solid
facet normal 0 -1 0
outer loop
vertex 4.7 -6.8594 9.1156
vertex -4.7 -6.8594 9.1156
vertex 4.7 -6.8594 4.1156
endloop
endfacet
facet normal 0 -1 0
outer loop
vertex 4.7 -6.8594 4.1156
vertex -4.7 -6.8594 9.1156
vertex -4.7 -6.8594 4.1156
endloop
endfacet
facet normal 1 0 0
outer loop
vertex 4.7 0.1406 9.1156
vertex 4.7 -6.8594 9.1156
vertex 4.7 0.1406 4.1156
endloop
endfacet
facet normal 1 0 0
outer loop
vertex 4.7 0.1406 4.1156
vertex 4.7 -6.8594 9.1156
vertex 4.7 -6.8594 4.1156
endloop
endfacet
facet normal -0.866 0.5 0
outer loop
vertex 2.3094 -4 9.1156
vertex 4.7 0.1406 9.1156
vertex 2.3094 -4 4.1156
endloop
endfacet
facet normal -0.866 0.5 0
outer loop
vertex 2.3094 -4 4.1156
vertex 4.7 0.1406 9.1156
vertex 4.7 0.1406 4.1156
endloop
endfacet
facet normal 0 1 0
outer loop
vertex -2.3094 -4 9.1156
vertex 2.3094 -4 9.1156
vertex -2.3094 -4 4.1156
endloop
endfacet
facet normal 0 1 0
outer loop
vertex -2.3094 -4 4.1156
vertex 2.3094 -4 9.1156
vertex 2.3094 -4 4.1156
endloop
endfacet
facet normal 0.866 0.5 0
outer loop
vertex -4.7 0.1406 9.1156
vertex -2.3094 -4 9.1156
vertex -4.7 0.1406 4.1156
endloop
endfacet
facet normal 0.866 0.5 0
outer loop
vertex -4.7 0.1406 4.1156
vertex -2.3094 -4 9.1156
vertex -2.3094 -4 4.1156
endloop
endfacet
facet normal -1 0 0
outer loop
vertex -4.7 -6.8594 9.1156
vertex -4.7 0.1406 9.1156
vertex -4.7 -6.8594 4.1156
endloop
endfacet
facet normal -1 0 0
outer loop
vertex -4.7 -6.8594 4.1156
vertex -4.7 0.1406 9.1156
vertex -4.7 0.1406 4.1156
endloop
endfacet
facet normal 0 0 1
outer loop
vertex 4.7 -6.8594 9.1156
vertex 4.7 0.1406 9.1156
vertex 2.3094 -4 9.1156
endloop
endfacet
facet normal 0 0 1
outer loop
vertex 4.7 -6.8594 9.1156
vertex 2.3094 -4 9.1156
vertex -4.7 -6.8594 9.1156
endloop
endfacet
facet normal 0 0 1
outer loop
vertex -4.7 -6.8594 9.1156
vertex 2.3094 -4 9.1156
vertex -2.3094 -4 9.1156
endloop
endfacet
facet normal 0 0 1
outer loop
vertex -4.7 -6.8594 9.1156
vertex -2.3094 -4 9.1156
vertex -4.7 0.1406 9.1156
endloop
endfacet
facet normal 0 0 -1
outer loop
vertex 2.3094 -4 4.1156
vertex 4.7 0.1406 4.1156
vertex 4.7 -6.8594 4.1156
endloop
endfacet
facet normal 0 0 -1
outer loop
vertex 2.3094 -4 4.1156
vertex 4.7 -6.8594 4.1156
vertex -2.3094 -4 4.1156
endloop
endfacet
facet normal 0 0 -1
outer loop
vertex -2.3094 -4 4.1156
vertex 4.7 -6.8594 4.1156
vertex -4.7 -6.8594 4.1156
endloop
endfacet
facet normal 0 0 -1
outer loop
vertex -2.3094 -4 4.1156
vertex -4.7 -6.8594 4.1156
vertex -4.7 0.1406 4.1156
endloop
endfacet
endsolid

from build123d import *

# Parameters (mm, degrees)
Y_KSEKLIK_EKSTR_ZYON1_DEPTH = 5


with BuildPart() as part:
    # Çizim1 → Yükseklik-Ekstrüzyon1 (new body)
    with BuildSketch(Plane.XY.offset(4.115610561)):
        Polygon((-4.7, 0.140638796), (-4.7, -6.859361204), (4.7, -6.859361204), (4.7, 0.140638796), (2.309401077, -4), (-2.309401077, -4), align=None)
    extrude(amount=Y_KSEKLIK_EKSTR_ZYON1_DEPTH)


solid = part.part
